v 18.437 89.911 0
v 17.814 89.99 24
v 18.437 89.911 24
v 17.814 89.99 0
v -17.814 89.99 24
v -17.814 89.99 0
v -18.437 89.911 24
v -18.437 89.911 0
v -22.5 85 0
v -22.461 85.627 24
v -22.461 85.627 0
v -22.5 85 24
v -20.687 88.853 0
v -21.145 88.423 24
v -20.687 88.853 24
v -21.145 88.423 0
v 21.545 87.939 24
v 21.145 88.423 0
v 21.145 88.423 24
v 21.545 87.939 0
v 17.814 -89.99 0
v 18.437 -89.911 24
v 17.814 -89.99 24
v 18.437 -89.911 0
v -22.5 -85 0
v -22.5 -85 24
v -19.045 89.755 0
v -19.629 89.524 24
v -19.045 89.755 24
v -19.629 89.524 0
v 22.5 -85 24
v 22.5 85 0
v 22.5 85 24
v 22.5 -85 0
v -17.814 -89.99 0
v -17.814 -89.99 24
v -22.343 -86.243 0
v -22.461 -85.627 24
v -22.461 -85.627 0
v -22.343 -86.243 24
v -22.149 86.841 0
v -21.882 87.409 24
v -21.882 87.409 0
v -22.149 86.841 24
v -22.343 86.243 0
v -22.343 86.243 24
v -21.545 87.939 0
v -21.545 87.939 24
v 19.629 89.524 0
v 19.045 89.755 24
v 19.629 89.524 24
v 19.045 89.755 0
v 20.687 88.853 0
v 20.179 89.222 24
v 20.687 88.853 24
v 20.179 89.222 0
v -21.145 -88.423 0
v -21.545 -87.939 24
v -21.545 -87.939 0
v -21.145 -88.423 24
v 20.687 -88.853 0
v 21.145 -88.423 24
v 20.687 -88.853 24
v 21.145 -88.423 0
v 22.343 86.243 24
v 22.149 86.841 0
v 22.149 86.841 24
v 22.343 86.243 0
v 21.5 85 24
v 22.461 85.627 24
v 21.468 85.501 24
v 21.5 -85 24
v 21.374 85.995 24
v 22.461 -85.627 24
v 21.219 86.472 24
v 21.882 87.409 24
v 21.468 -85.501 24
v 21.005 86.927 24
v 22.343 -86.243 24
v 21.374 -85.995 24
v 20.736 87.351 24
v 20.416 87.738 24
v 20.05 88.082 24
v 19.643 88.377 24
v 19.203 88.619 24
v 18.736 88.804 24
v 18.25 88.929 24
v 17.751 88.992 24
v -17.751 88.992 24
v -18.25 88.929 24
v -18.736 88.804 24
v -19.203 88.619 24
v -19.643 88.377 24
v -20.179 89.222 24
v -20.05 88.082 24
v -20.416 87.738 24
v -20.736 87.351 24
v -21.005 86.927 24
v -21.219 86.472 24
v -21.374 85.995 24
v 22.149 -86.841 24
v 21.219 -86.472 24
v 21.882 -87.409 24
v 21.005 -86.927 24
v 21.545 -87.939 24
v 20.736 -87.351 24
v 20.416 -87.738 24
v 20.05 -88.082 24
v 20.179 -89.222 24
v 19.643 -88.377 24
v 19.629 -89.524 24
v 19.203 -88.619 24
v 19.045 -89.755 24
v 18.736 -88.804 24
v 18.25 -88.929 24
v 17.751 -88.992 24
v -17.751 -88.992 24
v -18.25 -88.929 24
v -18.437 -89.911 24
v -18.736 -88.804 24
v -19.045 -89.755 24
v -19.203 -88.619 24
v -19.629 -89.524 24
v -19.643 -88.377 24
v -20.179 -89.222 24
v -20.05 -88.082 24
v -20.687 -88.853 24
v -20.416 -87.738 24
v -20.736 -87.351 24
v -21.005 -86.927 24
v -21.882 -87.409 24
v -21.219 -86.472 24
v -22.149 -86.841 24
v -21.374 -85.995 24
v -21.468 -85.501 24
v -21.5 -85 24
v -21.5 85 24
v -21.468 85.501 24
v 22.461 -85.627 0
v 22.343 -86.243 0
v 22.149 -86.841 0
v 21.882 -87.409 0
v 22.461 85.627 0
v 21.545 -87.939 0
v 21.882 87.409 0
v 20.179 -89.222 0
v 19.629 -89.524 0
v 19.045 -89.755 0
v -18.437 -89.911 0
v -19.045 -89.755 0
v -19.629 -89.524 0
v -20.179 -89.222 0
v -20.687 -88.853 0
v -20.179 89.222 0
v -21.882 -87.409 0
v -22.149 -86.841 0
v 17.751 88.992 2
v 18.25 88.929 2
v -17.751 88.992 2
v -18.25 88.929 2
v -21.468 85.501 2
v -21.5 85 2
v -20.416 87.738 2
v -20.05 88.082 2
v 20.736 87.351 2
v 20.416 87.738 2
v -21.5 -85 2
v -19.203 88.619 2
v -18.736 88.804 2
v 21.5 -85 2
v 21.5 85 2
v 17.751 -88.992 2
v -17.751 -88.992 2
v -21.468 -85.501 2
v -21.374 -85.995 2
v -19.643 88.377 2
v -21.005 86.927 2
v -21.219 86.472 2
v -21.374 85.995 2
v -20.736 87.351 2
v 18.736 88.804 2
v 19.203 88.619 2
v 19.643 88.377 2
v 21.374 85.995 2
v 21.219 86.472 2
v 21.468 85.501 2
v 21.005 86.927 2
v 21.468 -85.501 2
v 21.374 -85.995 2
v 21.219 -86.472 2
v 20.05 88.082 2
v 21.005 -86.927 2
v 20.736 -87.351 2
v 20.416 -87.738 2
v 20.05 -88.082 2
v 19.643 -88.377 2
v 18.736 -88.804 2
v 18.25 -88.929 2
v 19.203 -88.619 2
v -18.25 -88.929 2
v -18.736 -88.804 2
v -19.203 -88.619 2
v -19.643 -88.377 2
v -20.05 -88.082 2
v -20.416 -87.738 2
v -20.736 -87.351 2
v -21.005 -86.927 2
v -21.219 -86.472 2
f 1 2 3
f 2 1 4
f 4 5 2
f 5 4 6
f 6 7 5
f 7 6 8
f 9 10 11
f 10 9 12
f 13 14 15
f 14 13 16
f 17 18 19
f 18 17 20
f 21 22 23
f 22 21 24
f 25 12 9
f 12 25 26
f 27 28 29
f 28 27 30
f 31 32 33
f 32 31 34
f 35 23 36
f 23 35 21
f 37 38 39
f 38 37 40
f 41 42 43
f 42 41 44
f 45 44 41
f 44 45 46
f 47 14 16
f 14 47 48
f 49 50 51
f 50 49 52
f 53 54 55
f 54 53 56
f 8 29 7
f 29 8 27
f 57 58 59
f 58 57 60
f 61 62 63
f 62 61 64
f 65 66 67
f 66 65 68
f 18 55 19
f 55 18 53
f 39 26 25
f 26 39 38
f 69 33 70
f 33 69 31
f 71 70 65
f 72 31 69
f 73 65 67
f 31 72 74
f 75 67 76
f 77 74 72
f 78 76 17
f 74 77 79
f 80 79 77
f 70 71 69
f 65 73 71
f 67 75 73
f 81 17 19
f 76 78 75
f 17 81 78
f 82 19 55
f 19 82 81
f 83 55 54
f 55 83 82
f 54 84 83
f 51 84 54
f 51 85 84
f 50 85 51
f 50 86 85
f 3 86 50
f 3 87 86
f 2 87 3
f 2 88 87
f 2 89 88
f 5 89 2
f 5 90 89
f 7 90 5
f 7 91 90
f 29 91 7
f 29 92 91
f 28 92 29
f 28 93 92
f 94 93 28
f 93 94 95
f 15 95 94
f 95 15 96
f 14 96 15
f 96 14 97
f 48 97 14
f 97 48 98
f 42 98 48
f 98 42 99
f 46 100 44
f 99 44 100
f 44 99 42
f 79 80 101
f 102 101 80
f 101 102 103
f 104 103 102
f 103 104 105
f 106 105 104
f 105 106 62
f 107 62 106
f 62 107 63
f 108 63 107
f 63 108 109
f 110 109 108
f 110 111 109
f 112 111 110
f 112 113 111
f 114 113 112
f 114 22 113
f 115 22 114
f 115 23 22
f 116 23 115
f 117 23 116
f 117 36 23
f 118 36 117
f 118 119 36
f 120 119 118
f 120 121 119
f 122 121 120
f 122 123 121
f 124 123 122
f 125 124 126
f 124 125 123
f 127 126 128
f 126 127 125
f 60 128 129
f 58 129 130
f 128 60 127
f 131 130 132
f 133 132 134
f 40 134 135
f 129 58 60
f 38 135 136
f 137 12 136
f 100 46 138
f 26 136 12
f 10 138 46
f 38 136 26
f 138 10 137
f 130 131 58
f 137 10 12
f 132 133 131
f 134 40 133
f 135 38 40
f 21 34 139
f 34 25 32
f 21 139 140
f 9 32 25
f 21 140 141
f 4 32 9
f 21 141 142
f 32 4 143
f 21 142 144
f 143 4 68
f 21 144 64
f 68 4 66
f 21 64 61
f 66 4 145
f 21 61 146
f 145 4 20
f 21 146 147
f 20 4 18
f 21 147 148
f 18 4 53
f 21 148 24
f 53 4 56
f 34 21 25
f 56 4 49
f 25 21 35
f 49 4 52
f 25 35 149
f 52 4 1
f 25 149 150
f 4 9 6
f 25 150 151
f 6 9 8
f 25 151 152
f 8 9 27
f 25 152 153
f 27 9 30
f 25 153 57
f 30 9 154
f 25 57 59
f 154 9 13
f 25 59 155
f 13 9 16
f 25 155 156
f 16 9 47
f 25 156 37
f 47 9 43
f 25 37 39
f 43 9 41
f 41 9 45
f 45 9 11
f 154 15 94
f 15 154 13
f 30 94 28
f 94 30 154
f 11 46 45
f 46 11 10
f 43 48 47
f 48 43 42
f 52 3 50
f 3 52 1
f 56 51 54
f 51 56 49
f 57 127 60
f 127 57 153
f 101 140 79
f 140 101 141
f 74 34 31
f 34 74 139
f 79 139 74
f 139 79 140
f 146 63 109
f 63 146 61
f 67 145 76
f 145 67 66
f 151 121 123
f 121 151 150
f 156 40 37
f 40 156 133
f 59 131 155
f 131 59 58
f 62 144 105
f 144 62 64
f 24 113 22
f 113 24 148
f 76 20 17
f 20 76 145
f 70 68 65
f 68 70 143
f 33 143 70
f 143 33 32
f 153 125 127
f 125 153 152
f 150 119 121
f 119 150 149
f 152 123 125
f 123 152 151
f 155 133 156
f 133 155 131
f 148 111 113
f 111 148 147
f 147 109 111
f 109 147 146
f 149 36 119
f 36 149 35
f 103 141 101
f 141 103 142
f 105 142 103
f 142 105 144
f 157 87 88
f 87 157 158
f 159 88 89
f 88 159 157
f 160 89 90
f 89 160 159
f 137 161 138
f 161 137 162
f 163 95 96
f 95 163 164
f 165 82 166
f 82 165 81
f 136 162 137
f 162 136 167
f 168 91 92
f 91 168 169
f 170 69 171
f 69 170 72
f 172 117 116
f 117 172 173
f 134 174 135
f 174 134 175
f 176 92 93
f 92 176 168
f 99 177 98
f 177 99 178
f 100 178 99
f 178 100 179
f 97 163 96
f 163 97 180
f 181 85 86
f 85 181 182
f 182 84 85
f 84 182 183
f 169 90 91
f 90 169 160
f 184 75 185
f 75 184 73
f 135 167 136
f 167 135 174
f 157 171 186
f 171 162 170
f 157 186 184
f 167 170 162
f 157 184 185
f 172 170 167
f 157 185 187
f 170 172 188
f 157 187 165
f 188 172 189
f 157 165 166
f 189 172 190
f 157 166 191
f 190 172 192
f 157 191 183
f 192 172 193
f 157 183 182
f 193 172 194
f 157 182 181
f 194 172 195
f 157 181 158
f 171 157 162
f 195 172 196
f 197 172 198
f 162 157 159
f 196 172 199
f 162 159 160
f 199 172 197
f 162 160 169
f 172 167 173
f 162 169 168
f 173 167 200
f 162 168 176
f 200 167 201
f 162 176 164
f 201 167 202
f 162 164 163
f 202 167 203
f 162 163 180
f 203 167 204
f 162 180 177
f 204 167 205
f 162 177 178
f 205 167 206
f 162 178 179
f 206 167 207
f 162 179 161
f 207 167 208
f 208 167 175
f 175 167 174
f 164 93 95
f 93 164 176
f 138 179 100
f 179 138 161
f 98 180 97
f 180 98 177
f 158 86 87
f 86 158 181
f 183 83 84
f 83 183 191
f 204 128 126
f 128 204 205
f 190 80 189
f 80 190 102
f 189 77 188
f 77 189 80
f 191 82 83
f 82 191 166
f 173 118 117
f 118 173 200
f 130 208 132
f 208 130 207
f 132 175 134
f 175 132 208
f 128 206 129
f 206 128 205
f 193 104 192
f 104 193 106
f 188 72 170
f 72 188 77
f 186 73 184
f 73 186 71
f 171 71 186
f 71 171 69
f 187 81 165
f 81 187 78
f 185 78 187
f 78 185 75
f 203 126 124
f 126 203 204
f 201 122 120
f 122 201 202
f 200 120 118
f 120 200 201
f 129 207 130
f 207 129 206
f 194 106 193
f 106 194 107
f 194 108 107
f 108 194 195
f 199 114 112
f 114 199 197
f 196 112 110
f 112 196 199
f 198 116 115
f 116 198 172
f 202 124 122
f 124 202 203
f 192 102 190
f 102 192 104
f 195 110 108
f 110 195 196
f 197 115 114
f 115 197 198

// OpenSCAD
$fn = 50;


difference() {
	union() {
		hull() {
			translate(v = [-17.5000000000, 85.0000000000, 0]) {
				cylinder(h = 24, r = 5);
			}
			translate(v = [17.5000000000, 85.0000000000, 0]) {
				cylinder(h = 24, r = 5);
			}
			translate(v = [-17.5000000000, -85.0000000000, 0]) {
				cylinder(h = 24, r = 5);
			}
			translate(v = [17.5000000000, -85.0000000000, 0]) {
				cylinder(h = 24, r = 5);
			}
		}
	}
	union() {
		translate(v = [0, 0, 2]) {
			hull() {
				translate(v = [-17.5000000000, 85.0000000000, 0]) {
					cylinder(h = 22, r = 4);
				}
				translate(v = [17.5000000000, 85.0000000000, 0]) {
					cylinder(h = 22, r = 4);
				}
				translate(v = [-17.5000000000, -85.0000000000, 0]) {
					cylinder(h = 22, r = 4);
				}
				translate(v = [17.5000000000, -85.0000000000, 0]) {
					cylinder(h = 22, r = 4);
				}
			}
		}
	}
}
